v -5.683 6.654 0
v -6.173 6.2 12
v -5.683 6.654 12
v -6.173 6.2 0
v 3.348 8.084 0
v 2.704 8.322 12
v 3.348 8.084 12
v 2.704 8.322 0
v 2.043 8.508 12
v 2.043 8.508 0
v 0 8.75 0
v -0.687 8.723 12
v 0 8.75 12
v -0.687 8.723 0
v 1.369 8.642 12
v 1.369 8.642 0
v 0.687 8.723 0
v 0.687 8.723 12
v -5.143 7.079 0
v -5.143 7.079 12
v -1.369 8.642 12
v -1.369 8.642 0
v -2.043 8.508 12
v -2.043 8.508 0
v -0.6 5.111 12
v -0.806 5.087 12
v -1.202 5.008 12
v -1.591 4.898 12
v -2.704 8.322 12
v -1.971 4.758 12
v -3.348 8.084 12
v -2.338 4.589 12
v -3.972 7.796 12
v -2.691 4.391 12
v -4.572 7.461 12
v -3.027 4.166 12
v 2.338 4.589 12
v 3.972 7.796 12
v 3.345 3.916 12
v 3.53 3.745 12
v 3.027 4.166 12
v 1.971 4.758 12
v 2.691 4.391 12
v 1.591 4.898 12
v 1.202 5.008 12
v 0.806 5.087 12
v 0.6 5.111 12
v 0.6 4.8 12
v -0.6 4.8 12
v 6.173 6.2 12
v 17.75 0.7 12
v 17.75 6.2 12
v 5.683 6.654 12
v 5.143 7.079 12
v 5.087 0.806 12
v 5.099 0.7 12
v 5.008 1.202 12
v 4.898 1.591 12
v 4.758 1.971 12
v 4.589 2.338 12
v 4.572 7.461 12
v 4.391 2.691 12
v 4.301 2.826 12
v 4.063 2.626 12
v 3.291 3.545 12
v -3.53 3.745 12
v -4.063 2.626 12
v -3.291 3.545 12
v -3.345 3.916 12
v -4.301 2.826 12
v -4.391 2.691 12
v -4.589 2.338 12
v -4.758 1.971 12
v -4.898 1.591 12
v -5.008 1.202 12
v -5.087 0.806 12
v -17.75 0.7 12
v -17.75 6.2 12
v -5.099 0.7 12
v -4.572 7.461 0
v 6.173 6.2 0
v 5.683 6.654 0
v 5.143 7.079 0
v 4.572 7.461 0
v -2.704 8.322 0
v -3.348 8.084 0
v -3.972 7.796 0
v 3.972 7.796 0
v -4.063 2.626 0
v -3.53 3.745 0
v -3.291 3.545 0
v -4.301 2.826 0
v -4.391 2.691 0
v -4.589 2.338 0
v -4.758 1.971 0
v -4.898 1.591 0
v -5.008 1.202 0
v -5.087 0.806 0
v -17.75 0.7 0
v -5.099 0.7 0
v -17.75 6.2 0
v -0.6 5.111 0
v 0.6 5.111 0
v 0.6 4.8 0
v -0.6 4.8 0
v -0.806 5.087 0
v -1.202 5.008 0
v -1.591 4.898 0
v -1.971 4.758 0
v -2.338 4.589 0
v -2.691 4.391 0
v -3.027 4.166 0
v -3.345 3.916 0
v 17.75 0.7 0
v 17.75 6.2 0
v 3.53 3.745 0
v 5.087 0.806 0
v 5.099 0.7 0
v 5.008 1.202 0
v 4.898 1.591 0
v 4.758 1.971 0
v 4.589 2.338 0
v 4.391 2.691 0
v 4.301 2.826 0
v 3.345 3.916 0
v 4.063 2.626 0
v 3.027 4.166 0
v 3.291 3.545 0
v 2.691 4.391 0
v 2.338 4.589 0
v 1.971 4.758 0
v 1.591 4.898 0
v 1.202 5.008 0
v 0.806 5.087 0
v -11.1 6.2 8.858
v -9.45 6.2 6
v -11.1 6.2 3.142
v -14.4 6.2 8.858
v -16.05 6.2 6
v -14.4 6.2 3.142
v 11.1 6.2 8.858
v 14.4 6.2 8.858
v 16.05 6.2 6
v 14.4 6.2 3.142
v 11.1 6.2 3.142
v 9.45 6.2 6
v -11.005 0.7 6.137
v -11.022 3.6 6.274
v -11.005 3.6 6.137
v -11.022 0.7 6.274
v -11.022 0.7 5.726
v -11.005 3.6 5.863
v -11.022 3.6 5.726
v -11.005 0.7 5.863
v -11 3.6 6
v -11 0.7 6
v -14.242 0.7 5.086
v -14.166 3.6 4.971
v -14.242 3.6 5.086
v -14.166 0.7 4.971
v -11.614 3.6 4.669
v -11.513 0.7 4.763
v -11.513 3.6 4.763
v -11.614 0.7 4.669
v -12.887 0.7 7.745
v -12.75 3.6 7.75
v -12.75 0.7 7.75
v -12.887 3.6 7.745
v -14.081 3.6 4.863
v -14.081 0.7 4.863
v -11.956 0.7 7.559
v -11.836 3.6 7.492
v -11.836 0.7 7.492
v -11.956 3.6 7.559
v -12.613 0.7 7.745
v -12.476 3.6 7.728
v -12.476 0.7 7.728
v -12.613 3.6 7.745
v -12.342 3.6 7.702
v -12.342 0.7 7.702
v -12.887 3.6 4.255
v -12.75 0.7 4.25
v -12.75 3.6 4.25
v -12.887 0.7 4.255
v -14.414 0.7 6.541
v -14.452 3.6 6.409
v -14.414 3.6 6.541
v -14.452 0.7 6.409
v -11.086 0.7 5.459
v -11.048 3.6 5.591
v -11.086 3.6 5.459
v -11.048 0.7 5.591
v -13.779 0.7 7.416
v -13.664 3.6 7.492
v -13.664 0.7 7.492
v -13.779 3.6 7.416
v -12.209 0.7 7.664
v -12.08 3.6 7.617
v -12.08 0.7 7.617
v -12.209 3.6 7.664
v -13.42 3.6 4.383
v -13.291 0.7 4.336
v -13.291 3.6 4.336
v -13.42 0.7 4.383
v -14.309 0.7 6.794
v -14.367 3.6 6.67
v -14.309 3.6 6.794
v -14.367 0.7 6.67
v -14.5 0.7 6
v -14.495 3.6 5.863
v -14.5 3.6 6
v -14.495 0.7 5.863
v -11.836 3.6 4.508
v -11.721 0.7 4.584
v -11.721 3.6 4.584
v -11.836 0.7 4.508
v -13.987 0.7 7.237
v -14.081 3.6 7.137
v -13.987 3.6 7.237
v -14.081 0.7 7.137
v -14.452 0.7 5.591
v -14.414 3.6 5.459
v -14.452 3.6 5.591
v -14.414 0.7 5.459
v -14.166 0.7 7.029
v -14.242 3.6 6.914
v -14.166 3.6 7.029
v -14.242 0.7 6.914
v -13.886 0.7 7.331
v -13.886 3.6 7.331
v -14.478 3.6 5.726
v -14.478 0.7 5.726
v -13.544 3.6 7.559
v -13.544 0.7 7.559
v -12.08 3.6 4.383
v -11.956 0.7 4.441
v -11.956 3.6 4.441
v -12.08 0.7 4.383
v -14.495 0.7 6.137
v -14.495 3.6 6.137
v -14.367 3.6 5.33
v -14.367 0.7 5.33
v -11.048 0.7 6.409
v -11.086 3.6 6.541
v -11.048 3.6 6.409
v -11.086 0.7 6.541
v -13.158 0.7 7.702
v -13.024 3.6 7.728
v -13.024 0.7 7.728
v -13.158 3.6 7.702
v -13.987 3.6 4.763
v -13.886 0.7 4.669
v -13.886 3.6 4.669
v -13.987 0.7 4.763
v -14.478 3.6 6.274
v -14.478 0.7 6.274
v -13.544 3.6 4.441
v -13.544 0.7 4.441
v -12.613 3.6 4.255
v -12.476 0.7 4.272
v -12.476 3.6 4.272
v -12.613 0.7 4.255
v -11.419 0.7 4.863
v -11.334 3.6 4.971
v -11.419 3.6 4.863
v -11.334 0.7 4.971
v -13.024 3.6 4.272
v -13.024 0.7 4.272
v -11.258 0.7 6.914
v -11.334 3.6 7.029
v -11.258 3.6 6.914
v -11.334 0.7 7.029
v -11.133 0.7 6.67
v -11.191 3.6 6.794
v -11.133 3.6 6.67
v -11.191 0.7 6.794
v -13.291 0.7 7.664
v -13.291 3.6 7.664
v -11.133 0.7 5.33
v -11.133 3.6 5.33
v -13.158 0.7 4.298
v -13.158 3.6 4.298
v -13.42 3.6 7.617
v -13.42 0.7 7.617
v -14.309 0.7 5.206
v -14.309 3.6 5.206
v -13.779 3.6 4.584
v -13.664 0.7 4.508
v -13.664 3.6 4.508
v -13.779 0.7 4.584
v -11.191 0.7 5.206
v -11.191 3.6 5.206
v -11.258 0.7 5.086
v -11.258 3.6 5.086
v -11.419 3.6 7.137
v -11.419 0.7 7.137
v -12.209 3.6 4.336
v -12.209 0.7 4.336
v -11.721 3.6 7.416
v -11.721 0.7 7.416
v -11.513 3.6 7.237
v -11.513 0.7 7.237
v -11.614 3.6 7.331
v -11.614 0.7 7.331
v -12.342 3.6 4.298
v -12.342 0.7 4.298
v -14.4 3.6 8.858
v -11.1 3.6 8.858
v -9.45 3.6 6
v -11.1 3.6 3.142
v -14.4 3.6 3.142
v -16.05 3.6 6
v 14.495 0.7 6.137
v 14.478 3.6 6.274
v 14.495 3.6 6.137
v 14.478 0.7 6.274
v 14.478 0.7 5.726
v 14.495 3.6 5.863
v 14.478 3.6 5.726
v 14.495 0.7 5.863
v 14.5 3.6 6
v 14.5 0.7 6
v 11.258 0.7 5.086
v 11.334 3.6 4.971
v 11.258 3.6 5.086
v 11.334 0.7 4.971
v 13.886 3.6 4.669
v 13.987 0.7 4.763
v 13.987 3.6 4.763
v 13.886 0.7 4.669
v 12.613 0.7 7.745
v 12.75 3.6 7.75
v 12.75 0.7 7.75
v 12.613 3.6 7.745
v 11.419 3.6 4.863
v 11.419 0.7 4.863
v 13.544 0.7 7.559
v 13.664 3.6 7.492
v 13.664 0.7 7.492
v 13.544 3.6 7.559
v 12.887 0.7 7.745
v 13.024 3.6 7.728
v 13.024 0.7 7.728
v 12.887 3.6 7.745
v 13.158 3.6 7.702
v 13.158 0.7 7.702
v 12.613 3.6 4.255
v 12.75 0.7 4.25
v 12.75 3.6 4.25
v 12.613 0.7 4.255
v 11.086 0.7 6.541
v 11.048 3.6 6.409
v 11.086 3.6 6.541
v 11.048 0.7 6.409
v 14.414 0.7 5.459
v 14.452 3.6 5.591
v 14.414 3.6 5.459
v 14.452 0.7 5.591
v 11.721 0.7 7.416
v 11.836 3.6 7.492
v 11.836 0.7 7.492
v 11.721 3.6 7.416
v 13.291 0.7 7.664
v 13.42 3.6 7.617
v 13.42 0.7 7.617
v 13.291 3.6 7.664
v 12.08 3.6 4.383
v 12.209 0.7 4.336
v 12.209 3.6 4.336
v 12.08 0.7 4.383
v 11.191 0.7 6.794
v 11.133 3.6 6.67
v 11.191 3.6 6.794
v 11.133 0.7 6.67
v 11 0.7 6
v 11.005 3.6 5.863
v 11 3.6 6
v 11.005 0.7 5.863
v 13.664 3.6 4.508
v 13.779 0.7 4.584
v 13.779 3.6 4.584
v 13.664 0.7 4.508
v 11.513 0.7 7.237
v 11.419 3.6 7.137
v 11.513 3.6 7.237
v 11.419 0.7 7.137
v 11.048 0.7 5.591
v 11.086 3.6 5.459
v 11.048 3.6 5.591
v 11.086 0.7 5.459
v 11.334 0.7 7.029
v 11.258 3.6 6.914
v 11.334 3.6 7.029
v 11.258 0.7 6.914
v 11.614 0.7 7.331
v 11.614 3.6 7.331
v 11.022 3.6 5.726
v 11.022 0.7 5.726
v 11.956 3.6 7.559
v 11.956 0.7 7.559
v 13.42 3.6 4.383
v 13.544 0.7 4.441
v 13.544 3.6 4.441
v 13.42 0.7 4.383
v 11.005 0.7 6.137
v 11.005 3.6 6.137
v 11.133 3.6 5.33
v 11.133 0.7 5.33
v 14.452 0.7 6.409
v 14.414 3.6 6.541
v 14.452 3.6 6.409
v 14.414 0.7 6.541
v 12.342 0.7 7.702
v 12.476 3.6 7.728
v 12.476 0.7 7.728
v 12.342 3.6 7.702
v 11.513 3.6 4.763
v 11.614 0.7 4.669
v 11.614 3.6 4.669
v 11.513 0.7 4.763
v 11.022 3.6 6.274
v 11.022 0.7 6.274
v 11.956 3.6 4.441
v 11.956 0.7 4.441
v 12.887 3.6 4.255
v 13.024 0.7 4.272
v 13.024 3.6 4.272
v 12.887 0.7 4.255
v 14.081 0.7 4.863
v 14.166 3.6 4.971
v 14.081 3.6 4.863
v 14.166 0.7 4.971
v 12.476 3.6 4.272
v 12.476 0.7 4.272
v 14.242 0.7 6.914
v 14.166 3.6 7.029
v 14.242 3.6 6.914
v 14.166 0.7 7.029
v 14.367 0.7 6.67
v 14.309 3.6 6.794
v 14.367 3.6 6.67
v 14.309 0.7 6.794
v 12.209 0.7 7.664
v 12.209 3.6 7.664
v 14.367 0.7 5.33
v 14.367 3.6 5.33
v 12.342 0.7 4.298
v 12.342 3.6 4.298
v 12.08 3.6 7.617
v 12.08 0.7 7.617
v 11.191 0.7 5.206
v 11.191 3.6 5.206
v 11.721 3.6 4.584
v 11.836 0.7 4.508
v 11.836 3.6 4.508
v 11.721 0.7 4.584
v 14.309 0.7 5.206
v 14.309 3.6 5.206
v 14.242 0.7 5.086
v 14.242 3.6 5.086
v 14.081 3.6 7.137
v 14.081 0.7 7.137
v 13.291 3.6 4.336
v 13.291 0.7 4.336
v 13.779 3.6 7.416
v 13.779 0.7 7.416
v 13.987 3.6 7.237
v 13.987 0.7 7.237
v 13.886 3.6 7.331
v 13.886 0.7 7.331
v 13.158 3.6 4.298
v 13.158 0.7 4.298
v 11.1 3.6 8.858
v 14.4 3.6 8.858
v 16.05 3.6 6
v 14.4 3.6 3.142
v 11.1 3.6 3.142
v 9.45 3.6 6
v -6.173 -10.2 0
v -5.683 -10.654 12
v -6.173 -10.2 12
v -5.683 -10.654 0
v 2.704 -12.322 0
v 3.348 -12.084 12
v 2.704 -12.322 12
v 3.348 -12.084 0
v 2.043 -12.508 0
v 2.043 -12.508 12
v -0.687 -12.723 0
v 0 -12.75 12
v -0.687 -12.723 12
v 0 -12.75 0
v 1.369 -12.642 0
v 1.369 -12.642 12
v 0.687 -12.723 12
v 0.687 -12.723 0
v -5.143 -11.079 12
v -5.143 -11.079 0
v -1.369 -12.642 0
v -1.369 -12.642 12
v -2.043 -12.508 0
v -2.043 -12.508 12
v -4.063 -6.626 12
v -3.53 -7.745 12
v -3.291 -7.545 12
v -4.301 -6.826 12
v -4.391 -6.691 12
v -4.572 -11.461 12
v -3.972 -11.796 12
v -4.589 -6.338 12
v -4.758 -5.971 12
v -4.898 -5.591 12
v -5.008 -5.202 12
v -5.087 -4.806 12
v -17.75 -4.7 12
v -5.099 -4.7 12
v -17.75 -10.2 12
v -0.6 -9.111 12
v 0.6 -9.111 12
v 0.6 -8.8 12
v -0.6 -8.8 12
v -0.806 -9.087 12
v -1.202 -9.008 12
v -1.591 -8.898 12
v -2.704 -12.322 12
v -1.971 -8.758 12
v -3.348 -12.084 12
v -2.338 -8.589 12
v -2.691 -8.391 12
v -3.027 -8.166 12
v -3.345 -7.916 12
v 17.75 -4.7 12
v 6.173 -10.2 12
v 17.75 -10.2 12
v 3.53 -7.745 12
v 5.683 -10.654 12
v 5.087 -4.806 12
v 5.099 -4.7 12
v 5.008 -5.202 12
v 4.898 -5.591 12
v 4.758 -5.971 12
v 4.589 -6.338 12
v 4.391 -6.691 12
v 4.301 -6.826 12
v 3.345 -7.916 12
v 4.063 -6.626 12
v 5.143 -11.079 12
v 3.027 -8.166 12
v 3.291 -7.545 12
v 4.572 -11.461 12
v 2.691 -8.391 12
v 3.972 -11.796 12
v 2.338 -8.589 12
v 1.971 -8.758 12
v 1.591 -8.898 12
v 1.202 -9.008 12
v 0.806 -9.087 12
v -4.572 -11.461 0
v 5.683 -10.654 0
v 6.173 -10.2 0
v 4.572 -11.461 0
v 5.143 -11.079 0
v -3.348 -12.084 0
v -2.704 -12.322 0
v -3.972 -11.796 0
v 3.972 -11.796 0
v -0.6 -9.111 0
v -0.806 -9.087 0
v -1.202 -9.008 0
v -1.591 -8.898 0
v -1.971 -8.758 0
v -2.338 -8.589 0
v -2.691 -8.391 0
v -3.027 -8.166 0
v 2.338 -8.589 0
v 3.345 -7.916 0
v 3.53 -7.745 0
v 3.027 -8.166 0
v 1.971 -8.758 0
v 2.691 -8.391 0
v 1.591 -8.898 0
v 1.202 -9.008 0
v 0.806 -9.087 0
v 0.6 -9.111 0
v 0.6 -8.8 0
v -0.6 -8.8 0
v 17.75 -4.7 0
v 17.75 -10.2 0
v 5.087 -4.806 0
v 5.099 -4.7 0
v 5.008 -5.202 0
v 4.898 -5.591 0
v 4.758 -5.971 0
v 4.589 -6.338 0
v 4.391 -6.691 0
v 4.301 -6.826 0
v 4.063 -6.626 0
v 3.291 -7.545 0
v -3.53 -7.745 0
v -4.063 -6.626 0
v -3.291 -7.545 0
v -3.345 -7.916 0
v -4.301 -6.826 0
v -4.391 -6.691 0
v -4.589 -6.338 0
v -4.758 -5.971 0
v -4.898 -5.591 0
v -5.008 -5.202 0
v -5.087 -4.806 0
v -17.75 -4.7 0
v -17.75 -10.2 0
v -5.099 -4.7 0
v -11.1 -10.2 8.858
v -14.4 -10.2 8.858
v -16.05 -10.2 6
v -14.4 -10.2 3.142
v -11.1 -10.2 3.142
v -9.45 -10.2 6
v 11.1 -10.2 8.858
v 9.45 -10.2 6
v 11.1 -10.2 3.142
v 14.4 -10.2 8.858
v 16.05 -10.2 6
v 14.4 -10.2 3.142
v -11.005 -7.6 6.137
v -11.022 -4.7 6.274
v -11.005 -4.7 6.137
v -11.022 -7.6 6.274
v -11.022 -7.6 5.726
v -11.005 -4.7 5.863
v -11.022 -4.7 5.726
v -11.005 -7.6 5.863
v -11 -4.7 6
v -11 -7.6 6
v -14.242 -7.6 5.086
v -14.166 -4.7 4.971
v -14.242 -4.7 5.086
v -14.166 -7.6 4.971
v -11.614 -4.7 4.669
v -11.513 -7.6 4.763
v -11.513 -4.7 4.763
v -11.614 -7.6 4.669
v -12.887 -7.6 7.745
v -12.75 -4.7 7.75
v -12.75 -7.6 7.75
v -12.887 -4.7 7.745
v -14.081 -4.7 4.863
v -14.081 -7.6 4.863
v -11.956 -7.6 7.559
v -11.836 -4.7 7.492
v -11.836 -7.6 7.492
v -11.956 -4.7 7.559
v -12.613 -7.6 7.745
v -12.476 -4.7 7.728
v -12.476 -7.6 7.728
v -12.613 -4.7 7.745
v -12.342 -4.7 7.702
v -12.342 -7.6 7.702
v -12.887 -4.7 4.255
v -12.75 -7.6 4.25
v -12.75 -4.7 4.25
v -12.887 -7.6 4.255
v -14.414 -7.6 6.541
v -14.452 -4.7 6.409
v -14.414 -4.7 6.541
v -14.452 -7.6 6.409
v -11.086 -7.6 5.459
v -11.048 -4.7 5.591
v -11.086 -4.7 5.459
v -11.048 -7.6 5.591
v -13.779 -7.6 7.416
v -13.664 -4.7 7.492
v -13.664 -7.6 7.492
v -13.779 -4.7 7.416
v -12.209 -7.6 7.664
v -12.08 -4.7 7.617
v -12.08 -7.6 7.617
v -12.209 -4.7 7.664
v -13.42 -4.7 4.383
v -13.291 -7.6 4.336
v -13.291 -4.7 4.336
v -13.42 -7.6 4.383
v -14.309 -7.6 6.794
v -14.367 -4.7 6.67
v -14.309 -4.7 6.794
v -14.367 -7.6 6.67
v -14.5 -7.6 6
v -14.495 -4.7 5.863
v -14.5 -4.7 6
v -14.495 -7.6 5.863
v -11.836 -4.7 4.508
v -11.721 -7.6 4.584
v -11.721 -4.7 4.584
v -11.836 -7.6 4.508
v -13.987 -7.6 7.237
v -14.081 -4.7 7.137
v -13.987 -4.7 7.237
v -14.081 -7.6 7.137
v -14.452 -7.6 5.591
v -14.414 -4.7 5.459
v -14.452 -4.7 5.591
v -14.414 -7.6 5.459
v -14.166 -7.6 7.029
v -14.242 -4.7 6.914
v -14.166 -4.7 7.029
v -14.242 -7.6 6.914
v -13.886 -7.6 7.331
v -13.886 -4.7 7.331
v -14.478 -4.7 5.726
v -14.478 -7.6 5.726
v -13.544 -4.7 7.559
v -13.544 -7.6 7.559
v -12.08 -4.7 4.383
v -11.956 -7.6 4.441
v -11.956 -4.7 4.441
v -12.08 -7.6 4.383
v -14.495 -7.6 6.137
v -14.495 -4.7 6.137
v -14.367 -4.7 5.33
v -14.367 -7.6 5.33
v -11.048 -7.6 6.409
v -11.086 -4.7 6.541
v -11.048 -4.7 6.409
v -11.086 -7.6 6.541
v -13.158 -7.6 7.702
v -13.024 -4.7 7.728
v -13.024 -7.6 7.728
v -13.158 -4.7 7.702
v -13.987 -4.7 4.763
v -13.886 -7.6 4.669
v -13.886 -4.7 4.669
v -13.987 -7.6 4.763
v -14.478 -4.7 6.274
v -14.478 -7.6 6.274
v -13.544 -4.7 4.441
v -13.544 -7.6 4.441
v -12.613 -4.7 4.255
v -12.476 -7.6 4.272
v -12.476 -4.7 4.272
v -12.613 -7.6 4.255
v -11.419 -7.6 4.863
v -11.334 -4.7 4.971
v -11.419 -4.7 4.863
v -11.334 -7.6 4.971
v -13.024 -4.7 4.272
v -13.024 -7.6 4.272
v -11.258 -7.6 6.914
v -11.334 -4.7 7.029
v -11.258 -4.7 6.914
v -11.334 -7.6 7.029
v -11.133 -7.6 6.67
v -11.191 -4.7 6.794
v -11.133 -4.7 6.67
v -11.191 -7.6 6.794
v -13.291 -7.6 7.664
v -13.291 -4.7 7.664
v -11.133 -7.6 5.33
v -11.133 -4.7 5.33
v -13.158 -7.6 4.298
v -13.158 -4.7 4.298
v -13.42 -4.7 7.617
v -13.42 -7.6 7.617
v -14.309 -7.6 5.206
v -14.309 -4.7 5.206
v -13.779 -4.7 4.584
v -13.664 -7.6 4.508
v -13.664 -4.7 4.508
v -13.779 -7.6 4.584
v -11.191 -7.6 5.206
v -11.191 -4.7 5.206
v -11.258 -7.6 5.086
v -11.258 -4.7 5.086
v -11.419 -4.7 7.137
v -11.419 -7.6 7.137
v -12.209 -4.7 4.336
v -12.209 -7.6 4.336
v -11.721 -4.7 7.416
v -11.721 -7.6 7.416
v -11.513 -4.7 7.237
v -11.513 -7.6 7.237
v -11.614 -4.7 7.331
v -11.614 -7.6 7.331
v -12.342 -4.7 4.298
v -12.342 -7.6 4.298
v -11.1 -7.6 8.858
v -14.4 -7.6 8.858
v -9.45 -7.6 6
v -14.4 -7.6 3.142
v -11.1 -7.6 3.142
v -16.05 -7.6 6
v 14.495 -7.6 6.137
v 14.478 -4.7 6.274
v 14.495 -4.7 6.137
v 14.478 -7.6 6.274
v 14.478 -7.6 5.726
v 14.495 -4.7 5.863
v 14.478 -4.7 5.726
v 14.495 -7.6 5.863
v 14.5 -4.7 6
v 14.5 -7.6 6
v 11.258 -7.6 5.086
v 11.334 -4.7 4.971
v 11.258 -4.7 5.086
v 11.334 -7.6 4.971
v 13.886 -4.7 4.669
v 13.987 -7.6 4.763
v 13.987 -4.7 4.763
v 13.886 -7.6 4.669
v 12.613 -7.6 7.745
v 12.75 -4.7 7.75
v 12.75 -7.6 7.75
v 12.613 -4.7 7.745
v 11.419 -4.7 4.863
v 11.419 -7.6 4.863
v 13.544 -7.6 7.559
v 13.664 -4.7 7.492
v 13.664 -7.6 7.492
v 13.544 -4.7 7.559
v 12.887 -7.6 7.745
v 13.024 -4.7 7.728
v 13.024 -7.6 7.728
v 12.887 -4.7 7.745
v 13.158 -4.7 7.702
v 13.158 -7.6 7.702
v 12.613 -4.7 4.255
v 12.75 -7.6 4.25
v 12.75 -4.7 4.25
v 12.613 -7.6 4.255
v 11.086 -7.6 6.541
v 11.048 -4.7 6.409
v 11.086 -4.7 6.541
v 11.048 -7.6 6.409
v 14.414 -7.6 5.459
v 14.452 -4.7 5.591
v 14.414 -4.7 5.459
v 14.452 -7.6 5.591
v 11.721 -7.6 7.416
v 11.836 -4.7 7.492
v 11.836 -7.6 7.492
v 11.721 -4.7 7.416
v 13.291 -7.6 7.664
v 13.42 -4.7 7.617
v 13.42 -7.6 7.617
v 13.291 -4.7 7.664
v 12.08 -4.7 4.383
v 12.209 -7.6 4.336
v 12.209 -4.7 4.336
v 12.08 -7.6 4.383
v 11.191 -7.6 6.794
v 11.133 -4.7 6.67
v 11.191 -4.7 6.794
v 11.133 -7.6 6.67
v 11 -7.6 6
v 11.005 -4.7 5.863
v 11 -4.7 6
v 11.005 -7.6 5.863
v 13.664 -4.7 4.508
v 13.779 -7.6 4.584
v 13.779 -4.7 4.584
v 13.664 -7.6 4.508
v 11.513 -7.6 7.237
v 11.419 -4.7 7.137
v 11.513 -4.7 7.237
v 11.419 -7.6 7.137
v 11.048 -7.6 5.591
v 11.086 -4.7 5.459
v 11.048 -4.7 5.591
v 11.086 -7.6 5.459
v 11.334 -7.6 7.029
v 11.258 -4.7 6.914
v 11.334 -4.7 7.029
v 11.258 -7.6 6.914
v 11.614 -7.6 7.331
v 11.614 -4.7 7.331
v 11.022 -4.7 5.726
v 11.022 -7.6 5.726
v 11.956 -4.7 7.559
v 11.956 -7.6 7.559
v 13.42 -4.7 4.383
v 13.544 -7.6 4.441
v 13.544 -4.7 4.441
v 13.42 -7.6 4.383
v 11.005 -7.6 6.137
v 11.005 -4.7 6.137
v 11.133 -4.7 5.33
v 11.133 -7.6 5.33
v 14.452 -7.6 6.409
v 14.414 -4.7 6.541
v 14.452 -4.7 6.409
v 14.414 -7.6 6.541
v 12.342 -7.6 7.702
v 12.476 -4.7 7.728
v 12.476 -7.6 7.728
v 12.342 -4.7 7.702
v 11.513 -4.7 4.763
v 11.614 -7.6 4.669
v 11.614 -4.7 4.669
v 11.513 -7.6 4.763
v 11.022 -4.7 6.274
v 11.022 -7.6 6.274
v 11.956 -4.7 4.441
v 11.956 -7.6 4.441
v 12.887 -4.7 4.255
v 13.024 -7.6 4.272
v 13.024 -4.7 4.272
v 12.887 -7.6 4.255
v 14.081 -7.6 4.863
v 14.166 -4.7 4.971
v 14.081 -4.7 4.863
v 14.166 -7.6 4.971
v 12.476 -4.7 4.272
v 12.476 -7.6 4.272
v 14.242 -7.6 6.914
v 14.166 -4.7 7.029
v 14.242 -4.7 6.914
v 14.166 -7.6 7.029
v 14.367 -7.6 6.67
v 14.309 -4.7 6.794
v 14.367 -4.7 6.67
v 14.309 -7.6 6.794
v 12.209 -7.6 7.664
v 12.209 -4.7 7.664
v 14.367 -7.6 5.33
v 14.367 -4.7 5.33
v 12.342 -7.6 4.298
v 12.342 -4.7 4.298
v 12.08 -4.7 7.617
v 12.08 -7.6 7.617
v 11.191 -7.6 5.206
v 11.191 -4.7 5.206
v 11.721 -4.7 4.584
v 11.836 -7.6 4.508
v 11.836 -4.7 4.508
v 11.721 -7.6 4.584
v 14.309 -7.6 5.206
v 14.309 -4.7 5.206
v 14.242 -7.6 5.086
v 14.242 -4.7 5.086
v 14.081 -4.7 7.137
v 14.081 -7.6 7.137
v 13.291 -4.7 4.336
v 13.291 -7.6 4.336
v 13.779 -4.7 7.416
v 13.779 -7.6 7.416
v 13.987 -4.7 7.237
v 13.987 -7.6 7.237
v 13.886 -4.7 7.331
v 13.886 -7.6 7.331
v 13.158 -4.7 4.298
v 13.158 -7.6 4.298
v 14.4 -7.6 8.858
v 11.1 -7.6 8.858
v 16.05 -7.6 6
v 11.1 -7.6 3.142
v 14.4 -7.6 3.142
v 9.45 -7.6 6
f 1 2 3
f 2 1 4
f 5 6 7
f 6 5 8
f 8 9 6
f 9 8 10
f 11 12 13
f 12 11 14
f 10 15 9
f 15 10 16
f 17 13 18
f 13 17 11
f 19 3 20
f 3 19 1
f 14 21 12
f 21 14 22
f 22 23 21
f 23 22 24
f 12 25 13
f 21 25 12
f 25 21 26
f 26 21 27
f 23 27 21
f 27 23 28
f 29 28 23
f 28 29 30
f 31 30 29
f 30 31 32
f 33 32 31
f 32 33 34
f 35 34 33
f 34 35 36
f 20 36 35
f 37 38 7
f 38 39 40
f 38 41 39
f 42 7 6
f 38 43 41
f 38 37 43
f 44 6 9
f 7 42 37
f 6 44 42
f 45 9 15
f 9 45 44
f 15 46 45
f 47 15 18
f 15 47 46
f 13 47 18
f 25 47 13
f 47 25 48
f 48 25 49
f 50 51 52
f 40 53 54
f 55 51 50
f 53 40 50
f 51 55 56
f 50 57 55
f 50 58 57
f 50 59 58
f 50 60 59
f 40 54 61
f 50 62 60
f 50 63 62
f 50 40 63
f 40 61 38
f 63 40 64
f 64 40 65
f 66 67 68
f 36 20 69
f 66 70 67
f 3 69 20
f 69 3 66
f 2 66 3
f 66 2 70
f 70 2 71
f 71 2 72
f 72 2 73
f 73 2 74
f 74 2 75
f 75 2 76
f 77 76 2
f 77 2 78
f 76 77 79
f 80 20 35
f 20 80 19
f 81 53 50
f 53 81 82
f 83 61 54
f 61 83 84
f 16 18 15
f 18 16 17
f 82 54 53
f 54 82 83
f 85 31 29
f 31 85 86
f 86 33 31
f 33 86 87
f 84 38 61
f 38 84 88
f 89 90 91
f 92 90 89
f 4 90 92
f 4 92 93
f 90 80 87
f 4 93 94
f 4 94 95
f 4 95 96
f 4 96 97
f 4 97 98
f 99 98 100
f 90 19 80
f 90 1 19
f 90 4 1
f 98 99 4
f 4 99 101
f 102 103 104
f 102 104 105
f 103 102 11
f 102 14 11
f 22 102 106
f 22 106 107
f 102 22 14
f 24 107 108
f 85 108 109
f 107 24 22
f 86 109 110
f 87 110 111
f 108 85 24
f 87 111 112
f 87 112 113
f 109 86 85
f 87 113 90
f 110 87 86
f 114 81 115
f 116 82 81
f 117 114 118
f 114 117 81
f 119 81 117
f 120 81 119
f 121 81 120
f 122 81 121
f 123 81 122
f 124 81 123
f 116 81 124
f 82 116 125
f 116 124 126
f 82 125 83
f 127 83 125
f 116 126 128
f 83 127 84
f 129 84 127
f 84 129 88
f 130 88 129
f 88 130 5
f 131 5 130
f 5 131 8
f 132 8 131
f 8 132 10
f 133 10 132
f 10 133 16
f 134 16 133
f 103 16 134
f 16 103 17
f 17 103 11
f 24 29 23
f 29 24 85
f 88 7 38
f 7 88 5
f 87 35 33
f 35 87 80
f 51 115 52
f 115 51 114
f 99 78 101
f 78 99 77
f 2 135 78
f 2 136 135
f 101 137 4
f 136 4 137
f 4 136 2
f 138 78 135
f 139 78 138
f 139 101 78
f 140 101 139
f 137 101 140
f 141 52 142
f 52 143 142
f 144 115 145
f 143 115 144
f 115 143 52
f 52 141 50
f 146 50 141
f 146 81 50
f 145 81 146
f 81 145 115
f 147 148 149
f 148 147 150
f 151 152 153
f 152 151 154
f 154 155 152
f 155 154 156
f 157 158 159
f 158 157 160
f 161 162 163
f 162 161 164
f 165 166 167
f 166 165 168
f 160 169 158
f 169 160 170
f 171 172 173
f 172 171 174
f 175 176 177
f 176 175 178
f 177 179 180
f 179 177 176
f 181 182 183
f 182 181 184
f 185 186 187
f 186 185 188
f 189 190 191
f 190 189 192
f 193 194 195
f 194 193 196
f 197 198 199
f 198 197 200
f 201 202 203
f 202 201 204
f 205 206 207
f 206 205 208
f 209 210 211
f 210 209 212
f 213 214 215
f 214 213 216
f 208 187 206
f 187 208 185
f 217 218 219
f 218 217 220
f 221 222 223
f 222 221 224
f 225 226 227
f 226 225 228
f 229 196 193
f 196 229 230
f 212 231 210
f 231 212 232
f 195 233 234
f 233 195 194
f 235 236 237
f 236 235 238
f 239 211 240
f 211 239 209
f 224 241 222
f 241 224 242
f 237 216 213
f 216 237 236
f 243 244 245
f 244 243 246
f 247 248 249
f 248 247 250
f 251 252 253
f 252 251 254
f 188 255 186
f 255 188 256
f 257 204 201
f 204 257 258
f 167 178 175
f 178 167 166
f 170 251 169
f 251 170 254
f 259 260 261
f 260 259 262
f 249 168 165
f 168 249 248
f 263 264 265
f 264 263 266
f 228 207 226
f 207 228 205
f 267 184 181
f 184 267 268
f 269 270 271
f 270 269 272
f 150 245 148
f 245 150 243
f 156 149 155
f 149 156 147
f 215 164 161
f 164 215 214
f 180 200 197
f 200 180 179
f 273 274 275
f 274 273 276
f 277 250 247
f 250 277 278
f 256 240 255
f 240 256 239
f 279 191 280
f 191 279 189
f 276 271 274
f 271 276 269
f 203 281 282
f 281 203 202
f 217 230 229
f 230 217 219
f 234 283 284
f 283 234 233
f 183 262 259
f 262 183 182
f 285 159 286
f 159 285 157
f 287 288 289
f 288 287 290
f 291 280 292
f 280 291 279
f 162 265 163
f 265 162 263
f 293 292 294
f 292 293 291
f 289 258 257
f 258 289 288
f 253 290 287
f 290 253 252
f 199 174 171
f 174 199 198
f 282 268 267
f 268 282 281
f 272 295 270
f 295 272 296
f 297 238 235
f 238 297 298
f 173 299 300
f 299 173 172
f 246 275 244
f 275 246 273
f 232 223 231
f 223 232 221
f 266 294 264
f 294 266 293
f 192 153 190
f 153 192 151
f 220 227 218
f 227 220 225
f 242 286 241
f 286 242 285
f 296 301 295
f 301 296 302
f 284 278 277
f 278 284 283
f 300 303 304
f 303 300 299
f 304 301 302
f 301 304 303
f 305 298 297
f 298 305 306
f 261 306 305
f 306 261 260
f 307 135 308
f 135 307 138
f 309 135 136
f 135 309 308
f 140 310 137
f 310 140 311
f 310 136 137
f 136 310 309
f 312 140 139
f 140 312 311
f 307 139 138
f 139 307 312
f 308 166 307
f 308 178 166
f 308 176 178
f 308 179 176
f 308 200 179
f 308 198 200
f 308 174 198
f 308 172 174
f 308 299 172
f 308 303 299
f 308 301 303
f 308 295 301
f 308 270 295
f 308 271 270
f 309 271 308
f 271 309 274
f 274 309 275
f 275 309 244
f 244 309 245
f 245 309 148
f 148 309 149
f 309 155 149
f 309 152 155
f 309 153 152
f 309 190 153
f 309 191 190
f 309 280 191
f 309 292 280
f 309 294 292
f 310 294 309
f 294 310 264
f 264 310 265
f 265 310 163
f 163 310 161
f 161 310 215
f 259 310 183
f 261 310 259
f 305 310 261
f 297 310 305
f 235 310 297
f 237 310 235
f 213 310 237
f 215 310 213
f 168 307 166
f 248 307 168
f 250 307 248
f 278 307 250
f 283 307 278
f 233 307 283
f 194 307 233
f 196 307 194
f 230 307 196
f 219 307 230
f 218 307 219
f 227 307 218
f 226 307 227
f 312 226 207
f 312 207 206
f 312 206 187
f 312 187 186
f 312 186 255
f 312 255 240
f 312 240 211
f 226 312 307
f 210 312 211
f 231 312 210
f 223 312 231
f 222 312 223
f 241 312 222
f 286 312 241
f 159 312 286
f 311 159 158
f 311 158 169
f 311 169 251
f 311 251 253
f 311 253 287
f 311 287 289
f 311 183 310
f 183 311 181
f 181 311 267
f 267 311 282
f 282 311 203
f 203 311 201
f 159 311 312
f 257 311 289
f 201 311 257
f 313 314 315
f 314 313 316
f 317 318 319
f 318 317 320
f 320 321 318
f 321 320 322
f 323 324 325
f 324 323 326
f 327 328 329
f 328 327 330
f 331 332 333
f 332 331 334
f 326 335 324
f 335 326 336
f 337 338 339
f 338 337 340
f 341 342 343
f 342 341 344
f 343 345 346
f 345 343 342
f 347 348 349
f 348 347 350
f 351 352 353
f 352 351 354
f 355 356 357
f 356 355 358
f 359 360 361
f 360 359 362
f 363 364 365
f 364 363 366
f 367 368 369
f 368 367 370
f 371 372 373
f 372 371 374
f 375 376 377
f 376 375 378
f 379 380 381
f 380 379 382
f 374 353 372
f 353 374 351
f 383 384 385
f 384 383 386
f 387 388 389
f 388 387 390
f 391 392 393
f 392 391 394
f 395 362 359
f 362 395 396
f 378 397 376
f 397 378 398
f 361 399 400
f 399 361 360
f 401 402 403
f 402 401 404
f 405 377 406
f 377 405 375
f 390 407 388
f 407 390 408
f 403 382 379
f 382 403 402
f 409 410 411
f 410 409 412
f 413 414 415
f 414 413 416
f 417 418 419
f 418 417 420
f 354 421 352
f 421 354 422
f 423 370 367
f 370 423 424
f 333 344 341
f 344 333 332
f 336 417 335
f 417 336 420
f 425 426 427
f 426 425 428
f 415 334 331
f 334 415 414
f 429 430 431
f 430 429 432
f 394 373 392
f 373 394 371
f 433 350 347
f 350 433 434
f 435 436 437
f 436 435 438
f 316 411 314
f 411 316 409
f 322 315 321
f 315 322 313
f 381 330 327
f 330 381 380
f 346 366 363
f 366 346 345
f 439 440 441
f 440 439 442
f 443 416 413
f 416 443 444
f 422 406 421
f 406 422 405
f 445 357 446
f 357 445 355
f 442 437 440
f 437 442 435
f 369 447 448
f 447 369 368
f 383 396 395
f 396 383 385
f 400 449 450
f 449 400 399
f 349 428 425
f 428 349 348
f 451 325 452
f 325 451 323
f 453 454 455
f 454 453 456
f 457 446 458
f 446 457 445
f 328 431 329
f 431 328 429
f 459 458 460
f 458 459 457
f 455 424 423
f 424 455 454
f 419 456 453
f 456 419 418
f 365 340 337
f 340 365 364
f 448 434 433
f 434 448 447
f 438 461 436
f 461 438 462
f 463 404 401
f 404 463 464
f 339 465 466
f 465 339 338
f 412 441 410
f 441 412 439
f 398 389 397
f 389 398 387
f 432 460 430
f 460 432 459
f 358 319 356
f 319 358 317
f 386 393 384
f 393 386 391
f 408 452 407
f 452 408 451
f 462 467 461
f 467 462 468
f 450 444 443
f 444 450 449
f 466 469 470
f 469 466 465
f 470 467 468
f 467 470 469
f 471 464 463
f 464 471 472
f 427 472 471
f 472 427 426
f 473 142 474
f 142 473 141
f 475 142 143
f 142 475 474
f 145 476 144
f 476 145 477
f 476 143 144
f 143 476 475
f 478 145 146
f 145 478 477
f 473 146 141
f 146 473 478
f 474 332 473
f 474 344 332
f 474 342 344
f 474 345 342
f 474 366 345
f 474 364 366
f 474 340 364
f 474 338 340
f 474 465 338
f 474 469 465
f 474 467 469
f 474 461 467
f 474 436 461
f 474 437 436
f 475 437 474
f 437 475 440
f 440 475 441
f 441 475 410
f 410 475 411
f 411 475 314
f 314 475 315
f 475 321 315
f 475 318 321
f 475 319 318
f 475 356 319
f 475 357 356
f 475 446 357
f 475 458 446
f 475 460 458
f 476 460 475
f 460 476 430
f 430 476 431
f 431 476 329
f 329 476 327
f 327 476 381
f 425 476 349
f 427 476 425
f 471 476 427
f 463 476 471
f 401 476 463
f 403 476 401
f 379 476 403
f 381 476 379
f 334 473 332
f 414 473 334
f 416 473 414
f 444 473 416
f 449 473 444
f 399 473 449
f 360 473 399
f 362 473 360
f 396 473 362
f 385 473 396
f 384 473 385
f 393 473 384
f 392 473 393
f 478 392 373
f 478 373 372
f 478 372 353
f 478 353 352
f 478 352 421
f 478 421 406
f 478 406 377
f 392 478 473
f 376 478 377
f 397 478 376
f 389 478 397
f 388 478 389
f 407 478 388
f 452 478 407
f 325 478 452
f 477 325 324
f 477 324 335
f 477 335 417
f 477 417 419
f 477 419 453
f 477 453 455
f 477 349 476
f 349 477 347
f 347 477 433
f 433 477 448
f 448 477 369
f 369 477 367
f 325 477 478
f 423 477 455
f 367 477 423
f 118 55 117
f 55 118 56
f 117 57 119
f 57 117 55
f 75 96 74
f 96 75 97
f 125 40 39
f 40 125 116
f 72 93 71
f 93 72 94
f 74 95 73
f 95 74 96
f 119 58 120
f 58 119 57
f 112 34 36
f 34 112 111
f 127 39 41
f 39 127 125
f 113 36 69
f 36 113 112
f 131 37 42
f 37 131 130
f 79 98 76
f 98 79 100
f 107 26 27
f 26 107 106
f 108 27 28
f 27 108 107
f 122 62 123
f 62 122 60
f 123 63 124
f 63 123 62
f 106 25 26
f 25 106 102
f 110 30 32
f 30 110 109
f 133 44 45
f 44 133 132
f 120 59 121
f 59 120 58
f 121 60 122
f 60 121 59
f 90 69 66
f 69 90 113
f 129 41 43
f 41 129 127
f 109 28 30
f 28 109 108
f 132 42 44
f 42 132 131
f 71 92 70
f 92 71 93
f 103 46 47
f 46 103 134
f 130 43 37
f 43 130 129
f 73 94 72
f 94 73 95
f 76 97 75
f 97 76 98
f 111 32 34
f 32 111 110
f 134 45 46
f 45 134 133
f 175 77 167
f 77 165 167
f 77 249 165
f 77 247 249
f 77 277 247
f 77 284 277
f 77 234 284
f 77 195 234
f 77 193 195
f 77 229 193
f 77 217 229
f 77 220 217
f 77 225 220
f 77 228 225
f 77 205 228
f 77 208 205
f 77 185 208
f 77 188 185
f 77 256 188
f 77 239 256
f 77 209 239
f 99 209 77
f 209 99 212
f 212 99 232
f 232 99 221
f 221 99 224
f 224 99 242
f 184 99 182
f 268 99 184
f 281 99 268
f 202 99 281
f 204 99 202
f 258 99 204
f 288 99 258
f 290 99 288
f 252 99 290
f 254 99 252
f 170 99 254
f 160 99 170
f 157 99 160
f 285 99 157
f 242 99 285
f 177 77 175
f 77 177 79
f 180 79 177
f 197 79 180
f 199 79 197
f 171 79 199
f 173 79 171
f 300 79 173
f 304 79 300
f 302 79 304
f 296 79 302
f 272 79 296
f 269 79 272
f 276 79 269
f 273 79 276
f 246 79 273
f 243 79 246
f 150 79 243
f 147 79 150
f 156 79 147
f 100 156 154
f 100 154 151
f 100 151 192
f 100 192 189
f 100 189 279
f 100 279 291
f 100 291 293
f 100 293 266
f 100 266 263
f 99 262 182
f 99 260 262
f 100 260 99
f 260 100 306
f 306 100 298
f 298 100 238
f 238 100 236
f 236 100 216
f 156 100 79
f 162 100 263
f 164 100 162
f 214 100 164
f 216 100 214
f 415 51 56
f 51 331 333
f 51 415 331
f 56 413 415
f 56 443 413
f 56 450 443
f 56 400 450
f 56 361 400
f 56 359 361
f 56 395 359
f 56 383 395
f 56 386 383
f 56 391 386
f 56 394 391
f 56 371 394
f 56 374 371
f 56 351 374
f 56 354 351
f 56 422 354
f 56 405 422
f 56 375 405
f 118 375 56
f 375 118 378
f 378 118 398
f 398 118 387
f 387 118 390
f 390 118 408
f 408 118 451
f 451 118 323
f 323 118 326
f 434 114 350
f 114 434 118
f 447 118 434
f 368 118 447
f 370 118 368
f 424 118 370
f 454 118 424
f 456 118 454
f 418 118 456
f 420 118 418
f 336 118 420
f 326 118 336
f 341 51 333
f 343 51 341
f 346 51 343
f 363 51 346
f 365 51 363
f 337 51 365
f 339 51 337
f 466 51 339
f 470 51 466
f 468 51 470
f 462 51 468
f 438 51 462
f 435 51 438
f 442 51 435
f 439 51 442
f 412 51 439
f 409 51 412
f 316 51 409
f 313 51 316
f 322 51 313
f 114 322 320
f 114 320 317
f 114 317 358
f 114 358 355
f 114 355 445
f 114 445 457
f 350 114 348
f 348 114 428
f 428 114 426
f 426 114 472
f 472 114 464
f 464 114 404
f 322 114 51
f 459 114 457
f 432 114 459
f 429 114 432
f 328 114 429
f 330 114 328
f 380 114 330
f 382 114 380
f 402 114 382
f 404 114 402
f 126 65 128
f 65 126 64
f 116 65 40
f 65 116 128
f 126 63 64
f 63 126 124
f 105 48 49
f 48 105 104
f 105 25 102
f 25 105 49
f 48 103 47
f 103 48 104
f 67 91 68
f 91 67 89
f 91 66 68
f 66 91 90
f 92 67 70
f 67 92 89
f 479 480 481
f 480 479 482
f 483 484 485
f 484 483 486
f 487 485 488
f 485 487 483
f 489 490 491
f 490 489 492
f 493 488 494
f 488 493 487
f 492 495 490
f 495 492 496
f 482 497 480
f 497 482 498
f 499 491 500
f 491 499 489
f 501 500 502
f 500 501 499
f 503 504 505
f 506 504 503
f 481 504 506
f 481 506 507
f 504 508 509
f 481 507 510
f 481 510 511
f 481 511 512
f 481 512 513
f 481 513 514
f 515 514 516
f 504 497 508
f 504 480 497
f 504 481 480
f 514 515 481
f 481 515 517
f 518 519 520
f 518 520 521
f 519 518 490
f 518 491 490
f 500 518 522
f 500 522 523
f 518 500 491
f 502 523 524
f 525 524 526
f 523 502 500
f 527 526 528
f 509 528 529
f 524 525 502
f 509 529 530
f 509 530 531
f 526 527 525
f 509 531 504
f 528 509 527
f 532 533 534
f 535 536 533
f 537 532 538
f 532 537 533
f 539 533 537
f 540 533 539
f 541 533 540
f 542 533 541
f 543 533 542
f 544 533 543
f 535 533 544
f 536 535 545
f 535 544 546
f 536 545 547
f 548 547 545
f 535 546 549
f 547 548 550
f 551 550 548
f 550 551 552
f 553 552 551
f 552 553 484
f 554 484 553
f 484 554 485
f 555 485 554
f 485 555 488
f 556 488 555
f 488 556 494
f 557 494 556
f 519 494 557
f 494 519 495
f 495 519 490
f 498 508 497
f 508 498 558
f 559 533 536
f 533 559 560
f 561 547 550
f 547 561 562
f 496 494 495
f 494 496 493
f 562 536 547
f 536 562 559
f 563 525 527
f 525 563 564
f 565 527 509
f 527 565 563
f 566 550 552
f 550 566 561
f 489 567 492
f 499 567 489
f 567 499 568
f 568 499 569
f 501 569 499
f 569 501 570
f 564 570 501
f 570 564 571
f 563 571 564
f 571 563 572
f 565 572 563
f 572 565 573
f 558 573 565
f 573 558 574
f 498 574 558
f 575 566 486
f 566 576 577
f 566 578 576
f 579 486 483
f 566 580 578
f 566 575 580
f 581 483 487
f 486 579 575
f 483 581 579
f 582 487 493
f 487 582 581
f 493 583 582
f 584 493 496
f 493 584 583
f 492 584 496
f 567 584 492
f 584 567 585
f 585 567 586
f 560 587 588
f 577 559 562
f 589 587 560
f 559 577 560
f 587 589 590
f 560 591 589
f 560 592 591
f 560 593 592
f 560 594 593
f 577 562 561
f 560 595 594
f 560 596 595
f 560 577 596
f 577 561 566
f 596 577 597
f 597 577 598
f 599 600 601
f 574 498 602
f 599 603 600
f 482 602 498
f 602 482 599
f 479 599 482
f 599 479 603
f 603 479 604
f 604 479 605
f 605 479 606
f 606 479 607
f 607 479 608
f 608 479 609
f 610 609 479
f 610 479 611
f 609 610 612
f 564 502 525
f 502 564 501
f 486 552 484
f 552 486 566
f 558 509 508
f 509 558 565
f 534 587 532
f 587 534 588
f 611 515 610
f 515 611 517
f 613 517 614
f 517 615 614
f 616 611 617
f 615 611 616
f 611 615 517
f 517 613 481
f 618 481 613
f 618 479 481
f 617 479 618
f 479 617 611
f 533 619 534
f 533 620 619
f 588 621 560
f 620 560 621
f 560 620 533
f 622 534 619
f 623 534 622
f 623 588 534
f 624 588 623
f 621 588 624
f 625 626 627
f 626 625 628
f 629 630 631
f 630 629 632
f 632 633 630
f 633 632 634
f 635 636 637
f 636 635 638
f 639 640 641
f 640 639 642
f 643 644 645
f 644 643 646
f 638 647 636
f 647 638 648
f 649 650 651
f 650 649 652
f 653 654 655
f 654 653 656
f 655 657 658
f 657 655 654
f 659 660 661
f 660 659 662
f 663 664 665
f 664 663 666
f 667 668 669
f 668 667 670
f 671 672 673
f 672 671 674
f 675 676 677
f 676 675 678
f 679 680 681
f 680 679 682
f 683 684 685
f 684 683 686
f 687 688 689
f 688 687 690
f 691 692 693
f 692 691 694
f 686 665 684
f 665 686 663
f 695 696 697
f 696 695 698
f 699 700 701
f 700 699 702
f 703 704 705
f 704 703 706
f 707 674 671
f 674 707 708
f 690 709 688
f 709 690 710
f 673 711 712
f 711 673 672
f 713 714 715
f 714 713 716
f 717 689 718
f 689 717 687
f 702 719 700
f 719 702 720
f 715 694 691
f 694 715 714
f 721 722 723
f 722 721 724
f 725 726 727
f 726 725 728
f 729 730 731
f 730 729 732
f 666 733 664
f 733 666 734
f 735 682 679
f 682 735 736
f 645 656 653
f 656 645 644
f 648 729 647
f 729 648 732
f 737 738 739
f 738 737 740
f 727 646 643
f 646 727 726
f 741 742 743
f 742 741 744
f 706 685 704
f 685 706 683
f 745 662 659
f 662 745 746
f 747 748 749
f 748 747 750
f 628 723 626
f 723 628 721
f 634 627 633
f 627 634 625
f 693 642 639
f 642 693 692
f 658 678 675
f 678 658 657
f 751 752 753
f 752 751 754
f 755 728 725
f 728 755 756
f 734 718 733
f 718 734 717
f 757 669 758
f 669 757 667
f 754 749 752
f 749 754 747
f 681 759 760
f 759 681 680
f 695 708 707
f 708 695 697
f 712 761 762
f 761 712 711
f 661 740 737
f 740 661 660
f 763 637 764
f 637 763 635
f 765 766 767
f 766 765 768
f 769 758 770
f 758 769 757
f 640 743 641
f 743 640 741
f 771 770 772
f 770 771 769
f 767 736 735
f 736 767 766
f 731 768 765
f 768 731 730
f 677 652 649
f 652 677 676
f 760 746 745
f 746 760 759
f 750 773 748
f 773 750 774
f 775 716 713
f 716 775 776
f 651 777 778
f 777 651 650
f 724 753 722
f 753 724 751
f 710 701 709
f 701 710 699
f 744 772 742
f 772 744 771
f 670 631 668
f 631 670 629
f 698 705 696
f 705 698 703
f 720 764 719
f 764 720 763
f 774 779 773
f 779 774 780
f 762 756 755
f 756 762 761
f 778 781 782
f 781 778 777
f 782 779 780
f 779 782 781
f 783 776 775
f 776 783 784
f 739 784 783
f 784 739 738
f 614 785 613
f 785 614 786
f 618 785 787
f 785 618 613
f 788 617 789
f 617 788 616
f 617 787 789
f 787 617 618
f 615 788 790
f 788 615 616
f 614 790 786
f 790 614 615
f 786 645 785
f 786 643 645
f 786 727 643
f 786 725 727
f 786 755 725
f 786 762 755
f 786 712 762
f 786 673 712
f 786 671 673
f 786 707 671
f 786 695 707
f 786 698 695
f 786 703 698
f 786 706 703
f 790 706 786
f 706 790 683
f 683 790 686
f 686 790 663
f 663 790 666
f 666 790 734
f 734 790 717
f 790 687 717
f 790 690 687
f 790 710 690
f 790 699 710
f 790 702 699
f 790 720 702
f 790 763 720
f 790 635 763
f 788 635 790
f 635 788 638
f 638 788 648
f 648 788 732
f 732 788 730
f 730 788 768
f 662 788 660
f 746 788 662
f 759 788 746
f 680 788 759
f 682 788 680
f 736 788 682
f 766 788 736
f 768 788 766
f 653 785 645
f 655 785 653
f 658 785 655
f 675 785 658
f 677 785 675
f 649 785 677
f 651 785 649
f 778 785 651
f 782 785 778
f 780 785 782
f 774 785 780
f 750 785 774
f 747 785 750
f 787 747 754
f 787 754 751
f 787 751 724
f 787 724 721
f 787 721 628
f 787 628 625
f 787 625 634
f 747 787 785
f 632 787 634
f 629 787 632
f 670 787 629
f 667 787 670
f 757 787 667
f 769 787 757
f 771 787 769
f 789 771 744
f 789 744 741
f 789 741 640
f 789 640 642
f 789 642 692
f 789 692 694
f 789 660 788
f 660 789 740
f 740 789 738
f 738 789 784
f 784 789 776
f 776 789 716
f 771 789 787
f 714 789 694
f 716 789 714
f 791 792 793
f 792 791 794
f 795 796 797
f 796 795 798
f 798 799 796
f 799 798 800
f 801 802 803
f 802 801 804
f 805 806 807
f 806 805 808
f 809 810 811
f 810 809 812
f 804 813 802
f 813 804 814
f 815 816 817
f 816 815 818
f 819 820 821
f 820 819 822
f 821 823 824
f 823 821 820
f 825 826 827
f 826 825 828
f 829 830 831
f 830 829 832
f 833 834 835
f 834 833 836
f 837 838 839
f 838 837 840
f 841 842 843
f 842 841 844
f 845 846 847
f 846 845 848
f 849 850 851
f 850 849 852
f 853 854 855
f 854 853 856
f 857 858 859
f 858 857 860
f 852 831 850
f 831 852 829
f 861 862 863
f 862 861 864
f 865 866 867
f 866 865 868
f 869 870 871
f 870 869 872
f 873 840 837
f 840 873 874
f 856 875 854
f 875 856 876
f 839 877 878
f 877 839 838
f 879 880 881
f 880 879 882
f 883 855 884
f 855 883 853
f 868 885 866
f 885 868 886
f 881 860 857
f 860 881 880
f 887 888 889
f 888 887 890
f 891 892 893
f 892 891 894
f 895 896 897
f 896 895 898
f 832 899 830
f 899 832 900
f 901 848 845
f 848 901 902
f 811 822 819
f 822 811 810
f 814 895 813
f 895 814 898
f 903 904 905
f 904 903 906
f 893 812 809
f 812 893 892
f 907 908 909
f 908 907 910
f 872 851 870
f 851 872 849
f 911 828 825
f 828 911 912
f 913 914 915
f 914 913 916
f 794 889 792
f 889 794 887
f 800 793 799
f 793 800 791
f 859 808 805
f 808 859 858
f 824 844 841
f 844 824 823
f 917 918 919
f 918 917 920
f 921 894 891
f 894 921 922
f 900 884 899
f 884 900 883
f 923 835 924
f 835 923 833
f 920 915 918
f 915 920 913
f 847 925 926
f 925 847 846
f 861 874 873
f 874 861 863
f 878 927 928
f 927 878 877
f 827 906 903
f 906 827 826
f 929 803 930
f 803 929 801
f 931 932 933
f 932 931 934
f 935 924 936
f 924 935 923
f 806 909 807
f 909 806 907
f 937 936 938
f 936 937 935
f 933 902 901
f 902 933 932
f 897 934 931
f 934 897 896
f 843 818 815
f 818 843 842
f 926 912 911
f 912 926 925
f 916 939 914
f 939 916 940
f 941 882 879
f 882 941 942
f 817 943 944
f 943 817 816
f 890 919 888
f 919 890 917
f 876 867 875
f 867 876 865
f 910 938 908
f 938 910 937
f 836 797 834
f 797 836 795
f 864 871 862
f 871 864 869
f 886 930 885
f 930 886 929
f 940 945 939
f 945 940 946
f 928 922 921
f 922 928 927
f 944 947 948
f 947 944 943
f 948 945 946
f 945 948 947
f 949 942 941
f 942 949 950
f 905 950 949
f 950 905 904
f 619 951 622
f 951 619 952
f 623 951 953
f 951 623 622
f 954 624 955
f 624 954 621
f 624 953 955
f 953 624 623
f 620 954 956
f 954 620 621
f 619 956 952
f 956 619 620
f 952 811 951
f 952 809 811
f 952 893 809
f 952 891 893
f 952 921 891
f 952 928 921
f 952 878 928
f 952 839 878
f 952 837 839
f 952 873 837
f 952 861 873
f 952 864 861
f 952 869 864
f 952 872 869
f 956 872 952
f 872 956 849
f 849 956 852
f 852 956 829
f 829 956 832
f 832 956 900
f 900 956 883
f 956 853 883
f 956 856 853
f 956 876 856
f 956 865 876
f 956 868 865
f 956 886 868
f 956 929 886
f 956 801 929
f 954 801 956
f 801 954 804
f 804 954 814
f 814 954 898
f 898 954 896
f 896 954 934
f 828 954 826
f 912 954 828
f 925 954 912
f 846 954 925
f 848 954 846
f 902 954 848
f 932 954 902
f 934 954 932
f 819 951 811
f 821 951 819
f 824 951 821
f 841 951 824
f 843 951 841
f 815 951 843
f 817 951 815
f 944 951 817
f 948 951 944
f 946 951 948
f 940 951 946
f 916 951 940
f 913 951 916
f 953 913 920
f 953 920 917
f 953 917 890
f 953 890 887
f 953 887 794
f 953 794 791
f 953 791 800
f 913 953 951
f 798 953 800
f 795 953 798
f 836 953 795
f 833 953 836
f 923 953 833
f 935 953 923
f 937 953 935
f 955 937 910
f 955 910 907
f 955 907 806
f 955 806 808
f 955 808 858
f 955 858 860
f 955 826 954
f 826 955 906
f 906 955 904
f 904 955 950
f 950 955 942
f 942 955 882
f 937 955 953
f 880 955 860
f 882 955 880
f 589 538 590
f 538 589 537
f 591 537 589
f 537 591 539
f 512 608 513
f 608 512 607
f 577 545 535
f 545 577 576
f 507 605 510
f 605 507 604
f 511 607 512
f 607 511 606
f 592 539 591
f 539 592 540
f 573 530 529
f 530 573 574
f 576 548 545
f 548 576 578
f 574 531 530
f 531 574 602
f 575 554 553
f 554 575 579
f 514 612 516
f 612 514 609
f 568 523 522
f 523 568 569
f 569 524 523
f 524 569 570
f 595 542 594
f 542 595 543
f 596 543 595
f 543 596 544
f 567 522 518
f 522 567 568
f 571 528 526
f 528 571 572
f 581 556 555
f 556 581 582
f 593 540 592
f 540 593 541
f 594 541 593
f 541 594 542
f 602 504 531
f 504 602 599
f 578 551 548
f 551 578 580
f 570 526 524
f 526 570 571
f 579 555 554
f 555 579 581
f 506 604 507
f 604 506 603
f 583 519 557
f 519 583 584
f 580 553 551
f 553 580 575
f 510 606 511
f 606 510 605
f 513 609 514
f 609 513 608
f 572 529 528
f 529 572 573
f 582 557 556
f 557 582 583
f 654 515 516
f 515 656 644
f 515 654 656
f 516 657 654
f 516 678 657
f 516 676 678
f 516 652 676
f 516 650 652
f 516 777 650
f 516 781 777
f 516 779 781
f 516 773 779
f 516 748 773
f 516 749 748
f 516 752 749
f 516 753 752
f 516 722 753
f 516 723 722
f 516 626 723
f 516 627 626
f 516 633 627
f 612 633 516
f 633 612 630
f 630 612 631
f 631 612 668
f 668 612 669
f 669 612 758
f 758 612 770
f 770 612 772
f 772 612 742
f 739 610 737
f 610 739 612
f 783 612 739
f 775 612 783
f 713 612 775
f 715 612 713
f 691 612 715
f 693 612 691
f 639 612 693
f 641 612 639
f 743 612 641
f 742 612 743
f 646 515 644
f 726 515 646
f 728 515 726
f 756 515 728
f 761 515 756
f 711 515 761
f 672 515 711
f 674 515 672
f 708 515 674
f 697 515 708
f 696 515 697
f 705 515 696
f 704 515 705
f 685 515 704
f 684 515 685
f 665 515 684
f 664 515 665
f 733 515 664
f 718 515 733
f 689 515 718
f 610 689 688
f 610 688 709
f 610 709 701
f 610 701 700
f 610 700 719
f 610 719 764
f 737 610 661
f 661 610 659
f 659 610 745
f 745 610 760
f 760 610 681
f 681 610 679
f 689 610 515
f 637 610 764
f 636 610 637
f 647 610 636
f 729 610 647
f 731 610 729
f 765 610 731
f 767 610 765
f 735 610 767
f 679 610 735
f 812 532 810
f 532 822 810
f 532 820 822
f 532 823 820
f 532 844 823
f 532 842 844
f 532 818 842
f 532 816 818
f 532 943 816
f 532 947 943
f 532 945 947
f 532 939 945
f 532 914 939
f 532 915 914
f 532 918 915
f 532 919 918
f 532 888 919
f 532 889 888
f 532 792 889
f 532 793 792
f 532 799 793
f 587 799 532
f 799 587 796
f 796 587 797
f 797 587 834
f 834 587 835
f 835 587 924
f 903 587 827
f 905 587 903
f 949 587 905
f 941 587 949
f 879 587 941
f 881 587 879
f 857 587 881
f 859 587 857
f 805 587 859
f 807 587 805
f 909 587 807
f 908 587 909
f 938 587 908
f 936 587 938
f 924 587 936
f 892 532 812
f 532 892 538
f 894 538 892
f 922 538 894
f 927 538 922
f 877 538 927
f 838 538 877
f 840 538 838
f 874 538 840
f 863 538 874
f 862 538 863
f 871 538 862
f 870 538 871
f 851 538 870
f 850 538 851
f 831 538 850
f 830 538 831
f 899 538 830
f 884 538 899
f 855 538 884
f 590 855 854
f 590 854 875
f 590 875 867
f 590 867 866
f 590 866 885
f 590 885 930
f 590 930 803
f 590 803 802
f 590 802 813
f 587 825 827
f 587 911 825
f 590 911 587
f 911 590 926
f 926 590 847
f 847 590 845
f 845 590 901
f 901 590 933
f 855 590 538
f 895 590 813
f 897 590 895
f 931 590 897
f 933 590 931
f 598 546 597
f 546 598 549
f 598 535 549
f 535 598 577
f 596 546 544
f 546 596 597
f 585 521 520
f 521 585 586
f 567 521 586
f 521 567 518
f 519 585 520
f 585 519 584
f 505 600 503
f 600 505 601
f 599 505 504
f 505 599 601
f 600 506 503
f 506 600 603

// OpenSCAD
// FamilyHub blind tilt - wand clamp test v2 (two halves, two screws). Replaces wand-collar-test.
// v1 was a one-piece split ring: the ears pulled together but the ring itself was too stiff to close, so it slid.
// v2 is two half-shells that are pulled straight onto the wand by an M3 screw on each side, so it clamps no matter
// what: fits a wand from about 10.2 to 11.4 mm. Small ribs inside bite into the wand.
// Print: both halves flat as exported, no supports, 0.2 mm layers, 4 walls. Hardware: 2x M3 x 16 screws + 2x M3 nuts.
$fn = 80;
bore = 10.3;        // a touch under the wand so the halves never meet before they grip
wall = 3.6;
h = 12;
gap = 1.4;          // space left between the halves
ear = 9;            // ear length past the ring
earT = 5.5;         // ear thickness (each half)
rib = 0.35;         // grip ribs inside the bore
od = bore + 2 * wall;
ex = od / 2 + ear / 2 - 0.5;      // screw position

module half() {
  difference() {
    union() {
      cylinder(d = od, h = h);
      translate([-(od / 2 + ear), 0, 0]) cube([od + 2 * ear, earT + gap / 2, h]);
    }
    translate([0, 0, -1]) cylinder(d = bore, h = h + 2);
    translate([-50, -50, -1]) cube([100, 50 + gap / 2, h + 2]);                 // keep one half
    for (s = [-1, 1]) translate([s * ex, 0, h / 2]) rotate([-90, 0, 0]) {
      cylinder(d = 3.5, h = 30);                                                // M3 clearance
      translate([0, 0, gap / 2 + earT - 2.6]) cylinder(d = 6.6, h = 5, $fn = 6); // pocket: nut one side, screw head the other
    }
  }
  for (a = [40, 90, 140]) rotate([0, 0, a]) translate([bore / 2 - rib, -0.6, 0]) cube([rib + 0.3, 1.2, h]);   // grip ribs
}
half();
translate([0, -4, 0]) mirror([0, 1, 0]) half();     // second half, laid out next to the first for printing
